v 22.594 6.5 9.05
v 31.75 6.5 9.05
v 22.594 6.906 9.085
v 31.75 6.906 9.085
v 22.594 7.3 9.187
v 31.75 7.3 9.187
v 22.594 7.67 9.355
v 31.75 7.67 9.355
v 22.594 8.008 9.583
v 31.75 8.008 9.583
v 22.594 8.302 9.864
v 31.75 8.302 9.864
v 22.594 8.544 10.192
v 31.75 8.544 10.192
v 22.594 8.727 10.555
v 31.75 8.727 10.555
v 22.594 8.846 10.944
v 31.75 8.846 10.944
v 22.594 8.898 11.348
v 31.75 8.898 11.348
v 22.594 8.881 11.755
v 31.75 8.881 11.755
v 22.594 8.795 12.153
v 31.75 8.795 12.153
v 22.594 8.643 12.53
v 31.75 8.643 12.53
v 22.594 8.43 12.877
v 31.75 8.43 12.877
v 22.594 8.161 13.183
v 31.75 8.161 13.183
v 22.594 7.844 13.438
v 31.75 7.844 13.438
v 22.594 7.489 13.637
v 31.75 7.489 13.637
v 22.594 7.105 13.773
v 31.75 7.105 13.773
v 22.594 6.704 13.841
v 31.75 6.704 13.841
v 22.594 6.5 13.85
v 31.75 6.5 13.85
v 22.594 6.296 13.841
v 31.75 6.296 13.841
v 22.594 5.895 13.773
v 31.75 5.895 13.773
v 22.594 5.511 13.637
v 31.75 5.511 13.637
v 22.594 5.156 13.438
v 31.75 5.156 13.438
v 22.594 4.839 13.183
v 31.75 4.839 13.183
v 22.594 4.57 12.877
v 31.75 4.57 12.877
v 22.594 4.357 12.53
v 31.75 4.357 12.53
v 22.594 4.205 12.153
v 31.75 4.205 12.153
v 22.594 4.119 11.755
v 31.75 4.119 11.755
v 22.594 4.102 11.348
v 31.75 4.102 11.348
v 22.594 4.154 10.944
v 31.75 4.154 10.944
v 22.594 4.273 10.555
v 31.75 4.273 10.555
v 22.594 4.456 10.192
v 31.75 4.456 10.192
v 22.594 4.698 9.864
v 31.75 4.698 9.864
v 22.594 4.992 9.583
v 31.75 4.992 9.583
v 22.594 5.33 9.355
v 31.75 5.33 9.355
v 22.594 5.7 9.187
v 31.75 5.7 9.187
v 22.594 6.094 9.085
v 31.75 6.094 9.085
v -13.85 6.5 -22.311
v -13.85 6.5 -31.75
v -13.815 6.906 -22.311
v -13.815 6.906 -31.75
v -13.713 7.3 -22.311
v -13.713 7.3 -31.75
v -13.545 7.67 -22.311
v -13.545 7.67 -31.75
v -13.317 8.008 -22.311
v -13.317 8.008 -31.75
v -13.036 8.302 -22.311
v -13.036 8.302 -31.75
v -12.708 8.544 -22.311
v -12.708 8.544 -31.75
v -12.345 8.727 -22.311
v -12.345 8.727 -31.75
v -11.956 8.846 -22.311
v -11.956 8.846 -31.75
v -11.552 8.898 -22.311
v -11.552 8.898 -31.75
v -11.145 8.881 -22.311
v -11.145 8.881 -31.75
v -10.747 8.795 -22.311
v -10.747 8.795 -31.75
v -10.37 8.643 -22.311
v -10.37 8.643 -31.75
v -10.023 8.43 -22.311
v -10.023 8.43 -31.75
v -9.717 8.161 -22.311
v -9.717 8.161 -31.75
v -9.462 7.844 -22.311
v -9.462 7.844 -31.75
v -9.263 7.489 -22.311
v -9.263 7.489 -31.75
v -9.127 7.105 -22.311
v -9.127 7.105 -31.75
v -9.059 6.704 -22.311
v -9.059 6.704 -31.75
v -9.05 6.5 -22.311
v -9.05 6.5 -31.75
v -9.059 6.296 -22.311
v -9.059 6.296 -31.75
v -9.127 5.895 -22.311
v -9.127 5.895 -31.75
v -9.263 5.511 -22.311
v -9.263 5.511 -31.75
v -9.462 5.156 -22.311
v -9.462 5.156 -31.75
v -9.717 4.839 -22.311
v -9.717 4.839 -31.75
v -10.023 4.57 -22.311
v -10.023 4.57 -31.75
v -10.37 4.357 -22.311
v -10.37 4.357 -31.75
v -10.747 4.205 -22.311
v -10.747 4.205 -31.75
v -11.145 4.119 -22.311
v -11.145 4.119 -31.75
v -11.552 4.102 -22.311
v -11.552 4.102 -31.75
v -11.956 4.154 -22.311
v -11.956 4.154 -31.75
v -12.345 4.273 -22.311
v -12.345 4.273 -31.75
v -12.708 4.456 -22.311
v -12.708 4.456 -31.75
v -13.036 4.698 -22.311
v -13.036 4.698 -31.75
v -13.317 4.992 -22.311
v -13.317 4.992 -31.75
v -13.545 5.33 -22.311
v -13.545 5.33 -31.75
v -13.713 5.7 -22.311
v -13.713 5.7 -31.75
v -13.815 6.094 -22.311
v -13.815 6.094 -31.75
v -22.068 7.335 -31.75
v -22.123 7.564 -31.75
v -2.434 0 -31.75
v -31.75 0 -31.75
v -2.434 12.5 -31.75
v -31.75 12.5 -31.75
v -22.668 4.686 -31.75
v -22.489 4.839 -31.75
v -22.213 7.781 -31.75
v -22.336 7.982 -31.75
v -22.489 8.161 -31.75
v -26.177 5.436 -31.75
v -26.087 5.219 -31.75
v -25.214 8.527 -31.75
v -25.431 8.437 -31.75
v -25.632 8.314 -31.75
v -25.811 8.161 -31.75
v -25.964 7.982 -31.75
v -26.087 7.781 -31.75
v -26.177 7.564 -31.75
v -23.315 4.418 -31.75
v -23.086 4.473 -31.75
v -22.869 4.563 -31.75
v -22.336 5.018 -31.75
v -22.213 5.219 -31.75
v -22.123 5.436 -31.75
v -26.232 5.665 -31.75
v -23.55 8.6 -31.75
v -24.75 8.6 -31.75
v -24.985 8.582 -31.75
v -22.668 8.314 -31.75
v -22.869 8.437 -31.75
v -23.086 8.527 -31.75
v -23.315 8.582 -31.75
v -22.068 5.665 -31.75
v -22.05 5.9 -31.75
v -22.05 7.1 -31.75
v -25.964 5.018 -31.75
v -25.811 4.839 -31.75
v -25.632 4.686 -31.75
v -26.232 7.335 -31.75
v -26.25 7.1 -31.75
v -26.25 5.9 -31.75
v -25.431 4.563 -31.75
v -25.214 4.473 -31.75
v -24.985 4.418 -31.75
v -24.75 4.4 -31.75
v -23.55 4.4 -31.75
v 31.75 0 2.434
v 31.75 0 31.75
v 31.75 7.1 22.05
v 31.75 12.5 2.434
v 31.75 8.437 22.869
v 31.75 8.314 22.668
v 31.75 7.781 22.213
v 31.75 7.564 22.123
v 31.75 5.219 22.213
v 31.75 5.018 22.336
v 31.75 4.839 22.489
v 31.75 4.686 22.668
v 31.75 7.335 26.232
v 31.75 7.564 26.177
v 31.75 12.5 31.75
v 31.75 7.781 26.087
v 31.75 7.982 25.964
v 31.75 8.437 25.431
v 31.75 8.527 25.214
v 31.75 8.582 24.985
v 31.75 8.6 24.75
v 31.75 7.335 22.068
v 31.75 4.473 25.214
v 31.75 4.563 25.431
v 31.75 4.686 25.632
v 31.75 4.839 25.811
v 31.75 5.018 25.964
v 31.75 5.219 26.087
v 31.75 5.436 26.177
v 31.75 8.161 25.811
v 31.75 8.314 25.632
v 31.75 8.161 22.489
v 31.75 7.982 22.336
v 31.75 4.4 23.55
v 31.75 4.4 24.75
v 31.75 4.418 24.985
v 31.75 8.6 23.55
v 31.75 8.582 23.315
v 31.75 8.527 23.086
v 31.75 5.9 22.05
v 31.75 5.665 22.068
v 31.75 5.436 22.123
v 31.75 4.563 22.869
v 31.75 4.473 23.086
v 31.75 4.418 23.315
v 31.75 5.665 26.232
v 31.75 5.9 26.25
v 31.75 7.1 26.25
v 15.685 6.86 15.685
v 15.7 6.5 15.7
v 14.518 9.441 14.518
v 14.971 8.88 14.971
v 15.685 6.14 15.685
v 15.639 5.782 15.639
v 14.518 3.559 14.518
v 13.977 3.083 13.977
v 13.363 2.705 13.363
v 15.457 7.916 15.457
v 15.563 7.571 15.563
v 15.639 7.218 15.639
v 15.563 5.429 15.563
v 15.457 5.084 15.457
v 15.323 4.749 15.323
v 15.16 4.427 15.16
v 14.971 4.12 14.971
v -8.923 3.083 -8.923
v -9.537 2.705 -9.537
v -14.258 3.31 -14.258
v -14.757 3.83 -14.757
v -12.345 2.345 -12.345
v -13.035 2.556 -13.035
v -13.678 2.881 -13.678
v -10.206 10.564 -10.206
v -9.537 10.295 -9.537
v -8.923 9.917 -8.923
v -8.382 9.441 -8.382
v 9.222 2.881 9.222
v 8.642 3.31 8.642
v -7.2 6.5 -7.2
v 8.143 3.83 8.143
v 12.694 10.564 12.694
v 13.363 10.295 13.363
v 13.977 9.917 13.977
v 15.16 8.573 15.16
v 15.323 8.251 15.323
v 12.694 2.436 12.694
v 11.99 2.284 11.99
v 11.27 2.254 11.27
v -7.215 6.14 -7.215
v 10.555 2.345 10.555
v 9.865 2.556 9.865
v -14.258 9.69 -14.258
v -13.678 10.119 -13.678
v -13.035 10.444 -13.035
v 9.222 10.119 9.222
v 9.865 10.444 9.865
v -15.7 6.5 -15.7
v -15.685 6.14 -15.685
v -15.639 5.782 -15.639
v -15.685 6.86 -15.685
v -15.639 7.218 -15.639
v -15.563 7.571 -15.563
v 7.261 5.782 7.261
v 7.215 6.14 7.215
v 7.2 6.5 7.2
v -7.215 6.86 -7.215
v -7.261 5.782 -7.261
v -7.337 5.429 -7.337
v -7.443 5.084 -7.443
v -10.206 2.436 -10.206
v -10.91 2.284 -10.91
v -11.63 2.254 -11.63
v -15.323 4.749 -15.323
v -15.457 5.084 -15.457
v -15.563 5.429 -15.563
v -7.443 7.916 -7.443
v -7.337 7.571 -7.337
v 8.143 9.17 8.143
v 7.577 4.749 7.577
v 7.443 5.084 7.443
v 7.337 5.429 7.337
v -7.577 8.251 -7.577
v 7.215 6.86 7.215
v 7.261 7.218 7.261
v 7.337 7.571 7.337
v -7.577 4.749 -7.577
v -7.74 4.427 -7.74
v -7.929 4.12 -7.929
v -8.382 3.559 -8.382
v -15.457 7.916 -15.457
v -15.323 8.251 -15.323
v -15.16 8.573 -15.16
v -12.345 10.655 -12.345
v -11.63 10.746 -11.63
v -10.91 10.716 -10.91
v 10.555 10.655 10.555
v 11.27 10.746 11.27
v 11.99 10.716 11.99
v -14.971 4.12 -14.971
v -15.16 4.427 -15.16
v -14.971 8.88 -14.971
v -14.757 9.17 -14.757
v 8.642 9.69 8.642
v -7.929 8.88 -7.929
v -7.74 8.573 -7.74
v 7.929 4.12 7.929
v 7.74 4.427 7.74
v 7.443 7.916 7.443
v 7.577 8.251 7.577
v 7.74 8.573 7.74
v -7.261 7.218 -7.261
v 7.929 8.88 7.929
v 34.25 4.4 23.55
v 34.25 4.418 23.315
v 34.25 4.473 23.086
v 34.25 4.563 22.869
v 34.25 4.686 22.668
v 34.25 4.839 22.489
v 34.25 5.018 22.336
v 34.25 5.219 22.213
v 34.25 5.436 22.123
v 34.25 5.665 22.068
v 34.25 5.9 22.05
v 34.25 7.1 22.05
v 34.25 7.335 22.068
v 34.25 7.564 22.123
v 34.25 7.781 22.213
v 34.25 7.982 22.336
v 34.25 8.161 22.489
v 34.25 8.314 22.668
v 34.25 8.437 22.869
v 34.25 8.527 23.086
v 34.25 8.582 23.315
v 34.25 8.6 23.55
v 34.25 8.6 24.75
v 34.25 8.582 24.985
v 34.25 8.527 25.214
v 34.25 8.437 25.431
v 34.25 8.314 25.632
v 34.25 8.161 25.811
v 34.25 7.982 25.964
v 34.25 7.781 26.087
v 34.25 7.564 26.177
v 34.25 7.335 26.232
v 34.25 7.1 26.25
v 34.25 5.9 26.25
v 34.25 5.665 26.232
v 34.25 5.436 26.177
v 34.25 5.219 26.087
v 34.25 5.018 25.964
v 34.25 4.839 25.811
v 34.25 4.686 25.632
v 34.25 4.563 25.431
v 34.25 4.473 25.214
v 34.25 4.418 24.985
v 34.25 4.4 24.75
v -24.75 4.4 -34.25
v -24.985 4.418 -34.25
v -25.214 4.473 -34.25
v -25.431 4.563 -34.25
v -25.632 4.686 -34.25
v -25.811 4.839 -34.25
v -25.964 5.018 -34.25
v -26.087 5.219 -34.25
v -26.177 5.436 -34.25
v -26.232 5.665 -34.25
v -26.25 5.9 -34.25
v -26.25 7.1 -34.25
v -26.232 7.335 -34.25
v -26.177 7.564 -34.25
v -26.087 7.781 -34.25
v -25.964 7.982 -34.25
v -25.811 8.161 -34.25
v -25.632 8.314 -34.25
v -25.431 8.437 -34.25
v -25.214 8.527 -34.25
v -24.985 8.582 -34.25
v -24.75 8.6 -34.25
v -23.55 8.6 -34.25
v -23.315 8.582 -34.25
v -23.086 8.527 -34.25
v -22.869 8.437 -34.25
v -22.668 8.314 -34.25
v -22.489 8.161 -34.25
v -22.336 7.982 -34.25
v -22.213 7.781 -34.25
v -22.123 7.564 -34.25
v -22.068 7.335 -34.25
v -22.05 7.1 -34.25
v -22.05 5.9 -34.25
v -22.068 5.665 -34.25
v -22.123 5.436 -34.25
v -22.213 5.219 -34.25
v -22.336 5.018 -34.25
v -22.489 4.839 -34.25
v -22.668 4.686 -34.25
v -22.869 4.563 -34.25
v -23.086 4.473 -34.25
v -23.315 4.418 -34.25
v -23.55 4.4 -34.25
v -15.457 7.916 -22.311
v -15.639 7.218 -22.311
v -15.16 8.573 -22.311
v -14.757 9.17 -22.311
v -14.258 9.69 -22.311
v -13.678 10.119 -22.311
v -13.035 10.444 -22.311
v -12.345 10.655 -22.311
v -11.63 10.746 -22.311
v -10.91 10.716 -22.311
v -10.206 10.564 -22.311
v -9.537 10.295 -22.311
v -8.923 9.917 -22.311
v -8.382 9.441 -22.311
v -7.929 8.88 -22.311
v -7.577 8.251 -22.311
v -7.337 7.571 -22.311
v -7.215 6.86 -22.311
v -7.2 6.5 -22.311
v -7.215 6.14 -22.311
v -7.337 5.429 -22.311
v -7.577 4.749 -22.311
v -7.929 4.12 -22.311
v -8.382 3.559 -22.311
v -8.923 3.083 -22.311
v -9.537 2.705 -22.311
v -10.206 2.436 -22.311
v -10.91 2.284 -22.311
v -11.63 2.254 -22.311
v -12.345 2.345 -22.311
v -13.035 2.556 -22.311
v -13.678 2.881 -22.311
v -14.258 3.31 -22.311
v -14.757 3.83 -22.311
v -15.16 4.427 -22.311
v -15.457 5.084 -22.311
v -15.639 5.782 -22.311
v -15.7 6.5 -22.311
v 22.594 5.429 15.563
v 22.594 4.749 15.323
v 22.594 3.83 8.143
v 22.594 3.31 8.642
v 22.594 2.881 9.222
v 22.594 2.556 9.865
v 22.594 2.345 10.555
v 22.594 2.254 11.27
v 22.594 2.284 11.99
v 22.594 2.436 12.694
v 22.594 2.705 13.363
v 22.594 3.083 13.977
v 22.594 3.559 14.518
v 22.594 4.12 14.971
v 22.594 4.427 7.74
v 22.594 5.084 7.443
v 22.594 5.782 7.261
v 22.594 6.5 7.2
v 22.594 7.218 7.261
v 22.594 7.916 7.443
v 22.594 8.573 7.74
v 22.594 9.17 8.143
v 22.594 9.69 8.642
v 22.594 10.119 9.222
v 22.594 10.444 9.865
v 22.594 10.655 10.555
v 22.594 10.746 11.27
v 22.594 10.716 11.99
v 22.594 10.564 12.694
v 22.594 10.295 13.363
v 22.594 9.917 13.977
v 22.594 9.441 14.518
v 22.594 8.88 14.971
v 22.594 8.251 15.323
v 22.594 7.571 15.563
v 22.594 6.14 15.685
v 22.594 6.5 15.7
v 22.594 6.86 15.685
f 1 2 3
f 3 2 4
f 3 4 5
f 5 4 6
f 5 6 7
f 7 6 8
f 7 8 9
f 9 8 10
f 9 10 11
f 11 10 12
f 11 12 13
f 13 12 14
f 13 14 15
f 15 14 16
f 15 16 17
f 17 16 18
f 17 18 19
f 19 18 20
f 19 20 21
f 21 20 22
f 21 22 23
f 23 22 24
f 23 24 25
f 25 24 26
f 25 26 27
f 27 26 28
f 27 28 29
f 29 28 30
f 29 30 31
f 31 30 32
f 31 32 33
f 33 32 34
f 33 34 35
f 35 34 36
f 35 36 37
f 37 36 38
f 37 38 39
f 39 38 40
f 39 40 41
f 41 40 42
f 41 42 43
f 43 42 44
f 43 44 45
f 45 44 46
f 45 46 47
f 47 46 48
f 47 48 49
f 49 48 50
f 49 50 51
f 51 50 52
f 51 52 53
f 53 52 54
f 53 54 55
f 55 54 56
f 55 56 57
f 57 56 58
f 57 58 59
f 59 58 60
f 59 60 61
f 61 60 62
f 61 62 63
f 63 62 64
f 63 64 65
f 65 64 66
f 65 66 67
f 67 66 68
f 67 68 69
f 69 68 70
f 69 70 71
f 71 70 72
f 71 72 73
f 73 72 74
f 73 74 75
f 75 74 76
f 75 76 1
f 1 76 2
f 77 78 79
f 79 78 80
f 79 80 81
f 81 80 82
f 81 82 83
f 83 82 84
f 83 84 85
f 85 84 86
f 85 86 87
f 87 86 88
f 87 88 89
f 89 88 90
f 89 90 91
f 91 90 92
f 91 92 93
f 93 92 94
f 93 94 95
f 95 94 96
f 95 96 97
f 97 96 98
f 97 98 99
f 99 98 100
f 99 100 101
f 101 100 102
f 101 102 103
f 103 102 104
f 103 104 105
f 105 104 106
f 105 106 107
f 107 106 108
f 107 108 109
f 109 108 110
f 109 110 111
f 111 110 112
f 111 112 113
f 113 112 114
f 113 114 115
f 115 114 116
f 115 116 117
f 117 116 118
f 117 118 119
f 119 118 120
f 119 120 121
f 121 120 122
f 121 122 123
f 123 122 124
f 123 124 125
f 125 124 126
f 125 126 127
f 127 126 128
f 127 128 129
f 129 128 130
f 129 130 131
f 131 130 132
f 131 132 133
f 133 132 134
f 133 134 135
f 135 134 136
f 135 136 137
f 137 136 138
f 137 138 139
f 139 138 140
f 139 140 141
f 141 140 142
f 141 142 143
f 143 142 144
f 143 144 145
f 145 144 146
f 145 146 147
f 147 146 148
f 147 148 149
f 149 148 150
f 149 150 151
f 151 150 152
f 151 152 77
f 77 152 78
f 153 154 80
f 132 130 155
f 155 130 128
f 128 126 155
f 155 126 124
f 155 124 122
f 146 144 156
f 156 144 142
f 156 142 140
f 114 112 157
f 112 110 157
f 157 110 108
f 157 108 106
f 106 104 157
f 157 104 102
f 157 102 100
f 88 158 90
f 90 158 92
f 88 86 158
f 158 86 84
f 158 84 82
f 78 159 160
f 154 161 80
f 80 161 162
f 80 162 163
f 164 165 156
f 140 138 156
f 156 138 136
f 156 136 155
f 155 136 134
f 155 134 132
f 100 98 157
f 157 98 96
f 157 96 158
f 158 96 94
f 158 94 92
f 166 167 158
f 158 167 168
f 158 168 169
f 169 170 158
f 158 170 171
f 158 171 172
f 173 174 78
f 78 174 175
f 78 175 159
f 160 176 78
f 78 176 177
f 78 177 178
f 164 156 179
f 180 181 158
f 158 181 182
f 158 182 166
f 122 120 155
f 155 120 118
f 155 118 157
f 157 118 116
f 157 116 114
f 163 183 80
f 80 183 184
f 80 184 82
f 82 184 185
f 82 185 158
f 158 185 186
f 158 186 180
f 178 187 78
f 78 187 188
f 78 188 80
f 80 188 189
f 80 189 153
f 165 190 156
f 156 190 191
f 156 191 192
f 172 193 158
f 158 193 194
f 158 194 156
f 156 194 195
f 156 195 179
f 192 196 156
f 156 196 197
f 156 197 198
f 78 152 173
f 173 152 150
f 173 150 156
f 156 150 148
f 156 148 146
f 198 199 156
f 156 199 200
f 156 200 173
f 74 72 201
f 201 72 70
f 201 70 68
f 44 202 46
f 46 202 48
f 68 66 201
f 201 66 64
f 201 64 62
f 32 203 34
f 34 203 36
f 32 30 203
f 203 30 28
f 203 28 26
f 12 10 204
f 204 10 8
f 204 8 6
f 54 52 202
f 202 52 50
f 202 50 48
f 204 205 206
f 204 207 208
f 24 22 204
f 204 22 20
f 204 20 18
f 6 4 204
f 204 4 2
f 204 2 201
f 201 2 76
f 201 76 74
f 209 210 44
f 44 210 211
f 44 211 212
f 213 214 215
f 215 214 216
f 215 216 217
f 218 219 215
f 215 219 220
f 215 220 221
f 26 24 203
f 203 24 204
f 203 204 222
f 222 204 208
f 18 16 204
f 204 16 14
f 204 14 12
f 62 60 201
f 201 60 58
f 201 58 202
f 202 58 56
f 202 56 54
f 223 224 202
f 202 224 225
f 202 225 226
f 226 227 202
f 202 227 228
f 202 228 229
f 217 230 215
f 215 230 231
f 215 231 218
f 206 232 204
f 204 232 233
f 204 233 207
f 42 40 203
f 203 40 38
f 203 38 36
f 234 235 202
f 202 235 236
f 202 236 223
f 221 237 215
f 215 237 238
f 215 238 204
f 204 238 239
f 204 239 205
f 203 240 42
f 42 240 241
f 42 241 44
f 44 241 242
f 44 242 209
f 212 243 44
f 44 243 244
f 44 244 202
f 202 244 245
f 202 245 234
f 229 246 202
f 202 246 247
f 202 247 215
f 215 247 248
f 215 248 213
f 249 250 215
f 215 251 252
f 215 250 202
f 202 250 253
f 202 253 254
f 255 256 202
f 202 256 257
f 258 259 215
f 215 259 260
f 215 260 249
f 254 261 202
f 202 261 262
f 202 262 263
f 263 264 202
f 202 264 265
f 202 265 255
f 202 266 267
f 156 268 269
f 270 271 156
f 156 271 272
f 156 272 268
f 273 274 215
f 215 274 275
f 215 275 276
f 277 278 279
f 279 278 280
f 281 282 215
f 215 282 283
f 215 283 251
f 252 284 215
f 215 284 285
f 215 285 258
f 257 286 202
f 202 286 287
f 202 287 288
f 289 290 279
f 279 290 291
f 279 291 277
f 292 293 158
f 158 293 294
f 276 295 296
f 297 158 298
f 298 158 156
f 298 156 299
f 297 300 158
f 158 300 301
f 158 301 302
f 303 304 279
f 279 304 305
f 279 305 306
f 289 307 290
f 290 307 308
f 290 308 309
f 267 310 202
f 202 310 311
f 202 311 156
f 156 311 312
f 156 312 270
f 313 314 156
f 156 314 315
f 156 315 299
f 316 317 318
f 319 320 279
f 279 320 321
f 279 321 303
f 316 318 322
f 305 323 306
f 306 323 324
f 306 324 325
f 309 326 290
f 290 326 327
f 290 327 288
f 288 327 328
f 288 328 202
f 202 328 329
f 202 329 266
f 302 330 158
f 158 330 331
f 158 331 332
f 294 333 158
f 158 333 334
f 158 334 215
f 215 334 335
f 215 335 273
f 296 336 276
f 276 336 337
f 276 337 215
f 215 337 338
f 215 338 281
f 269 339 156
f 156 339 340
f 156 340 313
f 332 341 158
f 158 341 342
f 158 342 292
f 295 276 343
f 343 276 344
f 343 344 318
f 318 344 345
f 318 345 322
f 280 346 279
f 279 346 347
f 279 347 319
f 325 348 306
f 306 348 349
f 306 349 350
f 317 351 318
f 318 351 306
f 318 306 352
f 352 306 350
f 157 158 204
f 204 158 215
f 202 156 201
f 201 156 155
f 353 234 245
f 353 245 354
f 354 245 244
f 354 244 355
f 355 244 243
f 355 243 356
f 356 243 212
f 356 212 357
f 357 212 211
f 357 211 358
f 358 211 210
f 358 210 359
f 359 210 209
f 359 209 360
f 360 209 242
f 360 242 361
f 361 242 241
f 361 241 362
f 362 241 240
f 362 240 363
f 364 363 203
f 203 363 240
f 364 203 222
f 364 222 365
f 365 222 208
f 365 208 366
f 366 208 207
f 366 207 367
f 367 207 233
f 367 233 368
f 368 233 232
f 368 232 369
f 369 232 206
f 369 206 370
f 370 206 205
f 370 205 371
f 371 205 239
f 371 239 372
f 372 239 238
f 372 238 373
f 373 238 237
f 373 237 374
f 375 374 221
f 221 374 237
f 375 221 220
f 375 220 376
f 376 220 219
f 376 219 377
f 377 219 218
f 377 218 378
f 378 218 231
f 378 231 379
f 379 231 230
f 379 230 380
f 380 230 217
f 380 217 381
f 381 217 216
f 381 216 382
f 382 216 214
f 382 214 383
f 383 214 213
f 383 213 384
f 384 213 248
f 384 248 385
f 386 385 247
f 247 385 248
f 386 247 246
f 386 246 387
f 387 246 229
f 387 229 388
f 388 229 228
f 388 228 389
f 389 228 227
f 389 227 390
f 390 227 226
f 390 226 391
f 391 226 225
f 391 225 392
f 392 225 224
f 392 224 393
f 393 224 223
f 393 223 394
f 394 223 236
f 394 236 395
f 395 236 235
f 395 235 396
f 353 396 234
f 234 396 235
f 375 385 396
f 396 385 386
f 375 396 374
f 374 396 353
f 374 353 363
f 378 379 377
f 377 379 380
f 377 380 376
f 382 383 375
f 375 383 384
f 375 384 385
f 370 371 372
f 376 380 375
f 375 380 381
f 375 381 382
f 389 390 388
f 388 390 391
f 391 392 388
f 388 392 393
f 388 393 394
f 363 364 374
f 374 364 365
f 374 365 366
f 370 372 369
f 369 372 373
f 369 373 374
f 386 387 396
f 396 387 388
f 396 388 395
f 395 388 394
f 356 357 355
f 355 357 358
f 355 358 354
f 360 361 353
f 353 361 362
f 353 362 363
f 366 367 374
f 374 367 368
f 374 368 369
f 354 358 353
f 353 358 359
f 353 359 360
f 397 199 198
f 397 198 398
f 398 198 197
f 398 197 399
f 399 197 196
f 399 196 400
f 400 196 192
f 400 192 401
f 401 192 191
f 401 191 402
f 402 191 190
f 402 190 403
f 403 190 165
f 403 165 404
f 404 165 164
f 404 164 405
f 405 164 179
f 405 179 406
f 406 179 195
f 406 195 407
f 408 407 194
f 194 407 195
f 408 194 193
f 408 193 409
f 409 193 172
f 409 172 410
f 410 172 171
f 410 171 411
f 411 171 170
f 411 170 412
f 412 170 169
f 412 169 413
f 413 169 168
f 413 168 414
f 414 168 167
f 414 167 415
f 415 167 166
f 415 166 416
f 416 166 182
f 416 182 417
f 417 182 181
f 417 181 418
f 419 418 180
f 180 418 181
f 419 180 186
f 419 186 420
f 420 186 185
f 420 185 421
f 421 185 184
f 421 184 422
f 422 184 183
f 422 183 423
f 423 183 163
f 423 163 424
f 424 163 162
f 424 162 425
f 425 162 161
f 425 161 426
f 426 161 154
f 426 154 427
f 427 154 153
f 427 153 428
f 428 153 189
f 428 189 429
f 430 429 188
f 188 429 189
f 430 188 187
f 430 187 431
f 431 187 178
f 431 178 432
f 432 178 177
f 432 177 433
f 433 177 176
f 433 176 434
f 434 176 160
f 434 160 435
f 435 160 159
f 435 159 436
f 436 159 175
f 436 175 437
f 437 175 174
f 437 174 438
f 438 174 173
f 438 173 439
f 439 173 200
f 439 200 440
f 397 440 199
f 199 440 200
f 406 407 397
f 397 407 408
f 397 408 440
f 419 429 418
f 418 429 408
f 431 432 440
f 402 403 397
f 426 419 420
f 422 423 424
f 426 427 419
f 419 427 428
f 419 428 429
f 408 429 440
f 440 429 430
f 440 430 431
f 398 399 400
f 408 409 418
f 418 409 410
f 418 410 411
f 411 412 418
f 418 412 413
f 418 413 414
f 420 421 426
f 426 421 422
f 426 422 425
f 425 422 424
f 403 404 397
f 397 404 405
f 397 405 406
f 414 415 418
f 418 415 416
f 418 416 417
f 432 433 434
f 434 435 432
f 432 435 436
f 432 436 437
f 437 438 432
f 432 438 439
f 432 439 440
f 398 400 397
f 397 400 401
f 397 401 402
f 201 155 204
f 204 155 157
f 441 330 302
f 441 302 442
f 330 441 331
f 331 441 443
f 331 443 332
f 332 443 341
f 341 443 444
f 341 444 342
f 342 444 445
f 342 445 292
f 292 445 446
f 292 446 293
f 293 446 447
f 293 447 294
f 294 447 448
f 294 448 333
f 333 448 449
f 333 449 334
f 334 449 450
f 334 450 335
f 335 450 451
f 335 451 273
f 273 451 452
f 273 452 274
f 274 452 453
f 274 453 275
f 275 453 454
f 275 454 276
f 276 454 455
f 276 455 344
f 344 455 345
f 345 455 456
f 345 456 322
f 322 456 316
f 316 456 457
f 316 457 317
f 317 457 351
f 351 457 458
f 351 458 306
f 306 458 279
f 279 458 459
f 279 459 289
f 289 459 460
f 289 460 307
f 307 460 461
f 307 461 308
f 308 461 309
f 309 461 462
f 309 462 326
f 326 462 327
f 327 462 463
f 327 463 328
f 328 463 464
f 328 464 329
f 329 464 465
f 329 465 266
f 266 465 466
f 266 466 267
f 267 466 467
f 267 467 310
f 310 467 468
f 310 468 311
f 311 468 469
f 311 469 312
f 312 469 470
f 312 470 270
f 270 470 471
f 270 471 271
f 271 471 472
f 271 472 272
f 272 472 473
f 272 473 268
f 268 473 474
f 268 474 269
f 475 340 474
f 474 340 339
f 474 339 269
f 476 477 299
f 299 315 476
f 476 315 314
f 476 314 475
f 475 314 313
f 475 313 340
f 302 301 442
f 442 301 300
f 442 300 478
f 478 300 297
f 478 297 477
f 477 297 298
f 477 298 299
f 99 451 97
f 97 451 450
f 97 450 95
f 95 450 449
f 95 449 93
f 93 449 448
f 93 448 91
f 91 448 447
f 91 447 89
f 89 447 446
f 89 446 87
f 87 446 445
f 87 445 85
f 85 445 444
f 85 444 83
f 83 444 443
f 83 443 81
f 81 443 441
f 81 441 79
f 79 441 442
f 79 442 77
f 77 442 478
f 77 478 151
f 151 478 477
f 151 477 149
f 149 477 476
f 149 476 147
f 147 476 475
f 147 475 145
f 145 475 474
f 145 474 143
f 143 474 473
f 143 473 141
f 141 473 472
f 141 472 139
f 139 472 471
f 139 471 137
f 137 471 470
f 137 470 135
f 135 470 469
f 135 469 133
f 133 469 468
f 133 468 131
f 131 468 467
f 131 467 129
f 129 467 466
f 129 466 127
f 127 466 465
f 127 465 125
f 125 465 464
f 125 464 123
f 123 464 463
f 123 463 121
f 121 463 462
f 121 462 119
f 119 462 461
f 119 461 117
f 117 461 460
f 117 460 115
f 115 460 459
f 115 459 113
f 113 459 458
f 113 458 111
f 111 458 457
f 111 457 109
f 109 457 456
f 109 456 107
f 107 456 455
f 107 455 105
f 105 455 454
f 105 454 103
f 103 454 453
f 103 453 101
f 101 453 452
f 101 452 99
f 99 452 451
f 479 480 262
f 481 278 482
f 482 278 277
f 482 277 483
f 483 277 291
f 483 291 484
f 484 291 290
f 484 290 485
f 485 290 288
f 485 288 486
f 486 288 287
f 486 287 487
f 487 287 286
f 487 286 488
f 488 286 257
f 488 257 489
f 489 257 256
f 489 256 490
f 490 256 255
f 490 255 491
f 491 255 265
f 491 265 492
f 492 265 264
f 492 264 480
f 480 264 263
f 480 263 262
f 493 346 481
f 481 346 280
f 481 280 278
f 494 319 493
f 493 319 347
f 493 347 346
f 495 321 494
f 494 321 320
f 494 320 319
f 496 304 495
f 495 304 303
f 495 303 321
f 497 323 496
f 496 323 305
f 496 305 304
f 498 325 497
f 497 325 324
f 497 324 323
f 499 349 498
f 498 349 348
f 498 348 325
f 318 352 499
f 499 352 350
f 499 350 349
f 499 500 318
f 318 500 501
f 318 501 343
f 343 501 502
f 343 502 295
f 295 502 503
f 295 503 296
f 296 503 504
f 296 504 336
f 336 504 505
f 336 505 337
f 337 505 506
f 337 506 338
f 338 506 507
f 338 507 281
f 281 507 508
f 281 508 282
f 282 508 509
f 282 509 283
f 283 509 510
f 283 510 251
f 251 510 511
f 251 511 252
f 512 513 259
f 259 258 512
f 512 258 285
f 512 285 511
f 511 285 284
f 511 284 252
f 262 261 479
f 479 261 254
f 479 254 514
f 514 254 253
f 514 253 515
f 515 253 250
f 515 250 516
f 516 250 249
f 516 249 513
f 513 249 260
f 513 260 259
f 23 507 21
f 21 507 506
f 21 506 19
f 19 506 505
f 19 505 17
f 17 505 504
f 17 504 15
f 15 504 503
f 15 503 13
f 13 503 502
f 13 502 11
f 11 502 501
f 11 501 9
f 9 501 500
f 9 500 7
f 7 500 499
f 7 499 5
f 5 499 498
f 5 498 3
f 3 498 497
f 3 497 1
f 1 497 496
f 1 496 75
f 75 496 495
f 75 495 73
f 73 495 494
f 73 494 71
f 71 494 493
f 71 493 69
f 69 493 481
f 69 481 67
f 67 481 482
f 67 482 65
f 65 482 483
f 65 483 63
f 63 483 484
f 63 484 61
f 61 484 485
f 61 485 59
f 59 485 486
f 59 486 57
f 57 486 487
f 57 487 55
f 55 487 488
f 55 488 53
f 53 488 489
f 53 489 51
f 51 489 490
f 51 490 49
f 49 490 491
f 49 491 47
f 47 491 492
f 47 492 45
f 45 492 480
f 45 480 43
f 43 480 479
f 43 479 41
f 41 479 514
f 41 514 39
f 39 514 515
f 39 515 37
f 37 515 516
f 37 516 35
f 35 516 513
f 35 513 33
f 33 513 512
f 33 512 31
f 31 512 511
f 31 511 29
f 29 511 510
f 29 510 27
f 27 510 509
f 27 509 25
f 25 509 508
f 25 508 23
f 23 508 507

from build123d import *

# Parameters (mm, degrees)
BOSS_EXTRUDE1_DEPTH     = 12.5
BOSS_EXTRUDE2_DEPTH     = 2.5
BOSS_EXTRUDE3_DEPTH     = 2.5
CUT_EXTRUDE1_DEPTH      = 51.023744362
SKETCH5_R               = 2.4
CUT_EXTRUDE2_DEPTH      = 32.5
SKETCH6_R               = 2.4
CUT_EXTRUDE3_DEPTH      = 32.5
CUT_EXTRUDE4_DEPTH      = 12.5
CUT_EXTRUDE4_DEPTH_BACK = 12.5
SKETCH7_R               = 4.25
CUT_EXTRUDE5_DEPTH      = 12.5
CUT_EXTRUDE5_DEPTH_BACK = 12.5
SKETCH8_R               = 4.25


with BuildPart() as part:
    # Sketch1 → Boss-Extrude1 (new body)
    with BuildSketch(Plane(origin=(0, 0, 0), x_dir=(1, 0, 0), z_dir=(0, 1, 0))):
        Polygon((-31.75, 31.75), (31.75, -31.75), (31.75, 31.75), align=None)
    extrude(amount=BOSS_EXTRUDE1_DEPTH)

    # Sketch2 → Boss-Extrude2 (add)
    with BuildSketch(Plane(origin=(31.75, 0, 0), x_dir=(0, 0, -1), z_dir=(1, 0, 0))):
        with BuildLine():
            Line((26.05, 4.4), (27.25, 4.4))
            ThreePointArc((27.25, 4.4), (28.310660172, 4.839339828), (28.75, 5.9))
            Line((28.75, 5.9), (28.75, 7.1))
            ThreePointArc((28.75, 7.1), (28.310660172, 8.160660172), (27.25, 8.6))
            Line((27.25, 8.6), (26.05, 8.6))
            ThreePointArc((26.05, 8.6), (24.989339828, 8.160660172), (24.55, 7.1))
            Line((24.55, 7.1), (24.55, 5.9))
            ThreePointArc((24.55, 5.9), (24.989339828, 4.839339828), (26.05, 4.4))
        make_face()
        with BuildLine():
            Line((11.85, 5.9), (11.85, 7.1))
            ThreePointArc((11.85, 7.1), (12.289339828, 8.160660172), (13.35, 8.6))
            Line((13.35, 8.6), (14.55, 8.6))
            ThreePointArc((14.55, 8.6), (15.610660172, 8.160660172), (16.05, 7.1))
            Line((16.05, 7.1), (16.05, 5.9))
            ThreePointArc((16.05, 5.9), (15.610660172, 4.839339828), (14.55, 4.4))
            Line((14.55, 4.4), (13.35, 4.4))
            ThreePointArc((13.35, 4.4), (12.289339828, 4.839339828), (11.85, 5.9))
        make_face()
        with BuildLine():
            Line((-0.85, 5.9), (-0.85, 7.1))
            ThreePointArc((-0.85, 7.1), (-0.410660172, 8.160660172), (0.65, 8.6))
            Line((0.65, 8.6), (1.85, 8.6))
            ThreePointArc((1.85, 8.6), (2.910660172, 8.160660172), (3.35, 7.1))
            Line((3.35, 7.1), (3.35, 5.9))
            ThreePointArc((3.35, 5.9), (2.910660172, 4.839339828), (1.85, 4.4))
            Line((1.85, 4.4), (0.65, 4.4))
            ThreePointArc((0.65, 4.4), (-0.410660172, 4.839339828), (-0.85, 5.9))
        make_face()
        with BuildLine():
            Line((-13.55, 5.9), (-13.55, 7.1))
            ThreePointArc((-13.55, 7.1), (-13.110660172, 8.160660172), (-12.05, 8.6))
            Line((-12.05, 8.6), (-10.85, 8.6))
            ThreePointArc((-10.85, 8.6), (-9.789339828, 8.160660172), (-9.35, 7.1))
            Line((-9.35, 7.1), (-9.35, 5.9))
            ThreePointArc((-9.35, 5.9), (-9.789339828, 4.839339828), (-10.85, 4.4))
            Line((-10.85, 4.4), (-12.05, 4.4))
            ThreePointArc((-12.05, 4.4), (-13.110660172, 4.839339828), (-13.55, 5.9))
        make_face()
        with BuildLine():
            Line((-26.25, 5.9), (-26.25, 7.1))
            ThreePointArc((-26.25, 7.1), (-25.810660172, 8.160660172), (-24.75, 8.6))
            Line((-24.75, 8.6), (-23.55, 8.6))
            ThreePointArc((-23.55, 8.6), (-22.489339828, 8.160660172), (-22.05, 7.1))
            Line((-22.05, 7.1), (-22.05, 5.9))
            ThreePointArc((-22.05, 5.9), (-22.489339828, 4.839339828), (-23.55, 4.4))
            Line((-23.55, 4.4), (-24.75, 4.4))
            ThreePointArc((-24.75, 4.4), (-25.810660172, 4.839339828), (-26.25, 5.9))
        make_face()
    extrude(amount=BOSS_EXTRUDE2_DEPTH)

    # Sketch3 → Boss-Extrude3 (add)
    with BuildSketch(Plane(origin=(0, 0, -31.75), x_dir=(-1, 0, 0), z_dir=(0, 0, -1))):
        with BuildLine():
            Line((-26.05, 4.4), (-27.25, 4.4))
            ThreePointArc((-27.25, 4.4), (-28.310660172, 4.839339828), (-28.75, 5.9))
            Line((-28.75, 5.9), (-28.75, 7.1))
            ThreePointArc((-28.75, 7.1), (-28.310660172, 8.160660172), (-27.25, 8.6))
            Line((-27.25, 8.6), (-26.05, 8.6))
            ThreePointArc((-26.05, 8.6), (-24.989339828, 8.160660172), (-24.55, 7.1))
            Line((-24.55, 7.1), (-24.55, 5.9))
            ThreePointArc((-24.55, 5.9), (-24.989339828, 4.839339828), (-26.05, 4.4))
        make_face()
        with BuildLine():
            Line((-11.85, 5.9), (-11.85, 7.1))
            ThreePointArc((-11.85, 7.1), (-12.289339828, 8.160660172), (-13.35, 8.6))
            Line((-13.35, 8.6), (-14.55, 8.6))
            ThreePointArc((-14.55, 8.6), (-15.610660172, 8.160660172), (-16.05, 7.1))
            Line((-16.05, 7.1), (-16.05, 5.9))
            ThreePointArc((-16.05, 5.9), (-15.610660172, 4.839339828), (-14.55, 4.4))
            Line((-14.55, 4.4), (-13.35, 4.4))
            ThreePointArc((-13.35, 4.4), (-12.289339828, 4.839339828), (-11.85, 5.9))
        make_face()
        with BuildLine():
            Line((0.85, 5.9), (0.85, 7.1))
            ThreePointArc((0.85, 7.1), (0.410660172, 8.160660172), (-0.65, 8.6))
            Line((-0.65, 8.6), (-1.85, 8.6))
            ThreePointArc((-1.85, 8.6), (-2.910660172, 8.160660172), (-3.35, 7.1))
            Line((-3.35, 7.1), (-3.35, 5.9))
            ThreePointArc((-3.35, 5.9), (-2.910660172, 4.839339828), (-1.85, 4.4))
            Line((-1.85, 4.4), (-0.65, 4.4))
            ThreePointArc((-0.65, 4.4), (0.410660172, 4.839339828), (0.85, 5.9))
        make_face()
        with BuildLine():
            Line((13.55, 5.9), (13.55, 7.1))
            ThreePointArc((13.55, 7.1), (13.110660172, 8.160660172), (12.05, 8.6))
            Line((12.05, 8.6), (10.85, 8.6))
            ThreePointArc((10.85, 8.6), (9.789339828, 8.160660172), (9.35, 7.1))
            Line((9.35, 7.1), (9.35, 5.9))
            ThreePointArc((9.35, 5.9), (9.789339828, 4.839339828), (10.85, 4.4))
            Line((10.85, 4.4), (12.05, 4.4))
            ThreePointArc((12.05, 4.4), (13.110660172, 4.839339828), (13.55, 5.9))
        make_face()
        with BuildLine():
            Line((26.25, 5.9), (26.25, 7.1))
            ThreePointArc((26.25, 7.1), (25.810660172, 8.160660172), (24.75, 8.6))
            Line((24.75, 8.6), (23.55, 8.6))
            ThreePointArc((23.55, 8.6), (22.489339828, 8.160660172), (22.05, 7.1))
            Line((22.05, 7.1), (22.05, 5.9))
            ThreePointArc((22.05, 5.9), (22.489339828, 4.839339828), (23.55, 4.4))
            Line((23.55, 4.4), (24.75, 4.4))
            ThreePointArc((24.75, 4.4), (25.810660172, 4.839339828), (26.25, 5.9))
        make_face()
    extrude(amount=BOSS_EXTRUDE3_DEPTH)

    # Sketch4 → Cut-Extrude1 (cut, through all)
    with BuildSketch(Plane(origin=(0, 12.5, 0), x_dir=(1, 0, 0), z_dir=(0, 1, 0))):
        Polygon((31.75, -2.434304015), (-2.434304015, 31.75), (-2.434304015, 36.268787218), (35.715446441, 36.268787218), (35.715446441, -2.434304015), align=None)
    extrude(amount=-CUT_EXTRUDE1_DEPTH, mode=Mode.SUBTRACT)

    # Sketch5 → Cut-Extrude2 (cut)
    with BuildSketch(Plane(origin=(34.25, 0, 0), x_dir=(0, 0, -1), z_dir=(1, 0, 0))):
        with Locations(Location((-11.45, 6.5, 0), (0, 0, 180))):
            Circle(SKETCH5_R)
    extrude(amount=-CUT_EXTRUDE2_DEPTH, mode=Mode.SUBTRACT)

    # Sketch6 → Cut-Extrude3 (cut)
    with BuildSketch(Plane(origin=(0, 0, -34.25), x_dir=(-1, 0, 0), z_dir=(0, 0, -1))):
        with Locations((11.45, 6.5)):
            Circle(SKETCH6_R)
    extrude(amount=-CUT_EXTRUDE3_DEPTH, mode=Mode.SUBTRACT)

    # Sketch7 → Cut-Extrude4 (cut, two sides: drawn at the far end of the back side and taken through both)
    with BuildSketch(Plane.XY.offset(-9.811165381).offset(-CUT_EXTRUDE4_DEPTH_BACK)):
        with Locations(Location((-11.45, 6.5, 0), (0, 0, 180))):
            Circle(SKETCH7_R)
    extrude(amount=CUT_EXTRUDE4_DEPTH + CUT_EXTRUDE4_DEPTH_BACK, mode=Mode.SUBTRACT)

    # Sketch8 → Cut-Extrude5 (cut, two sides: drawn at the far end of the back side and taken through both)
    with BuildSketch(Plane.ZY.offset(-10.09384537).offset(-CUT_EXTRUDE5_DEPTH_BACK)):
        with Locations((11.45, 6.5)):
            Circle(SKETCH8_R)
    extrude(amount=CUT_EXTRUDE5_DEPTH + CUT_EXTRUDE5_DEPTH_BACK, mode=Mode.SUBTRACT)


solid = part.part
